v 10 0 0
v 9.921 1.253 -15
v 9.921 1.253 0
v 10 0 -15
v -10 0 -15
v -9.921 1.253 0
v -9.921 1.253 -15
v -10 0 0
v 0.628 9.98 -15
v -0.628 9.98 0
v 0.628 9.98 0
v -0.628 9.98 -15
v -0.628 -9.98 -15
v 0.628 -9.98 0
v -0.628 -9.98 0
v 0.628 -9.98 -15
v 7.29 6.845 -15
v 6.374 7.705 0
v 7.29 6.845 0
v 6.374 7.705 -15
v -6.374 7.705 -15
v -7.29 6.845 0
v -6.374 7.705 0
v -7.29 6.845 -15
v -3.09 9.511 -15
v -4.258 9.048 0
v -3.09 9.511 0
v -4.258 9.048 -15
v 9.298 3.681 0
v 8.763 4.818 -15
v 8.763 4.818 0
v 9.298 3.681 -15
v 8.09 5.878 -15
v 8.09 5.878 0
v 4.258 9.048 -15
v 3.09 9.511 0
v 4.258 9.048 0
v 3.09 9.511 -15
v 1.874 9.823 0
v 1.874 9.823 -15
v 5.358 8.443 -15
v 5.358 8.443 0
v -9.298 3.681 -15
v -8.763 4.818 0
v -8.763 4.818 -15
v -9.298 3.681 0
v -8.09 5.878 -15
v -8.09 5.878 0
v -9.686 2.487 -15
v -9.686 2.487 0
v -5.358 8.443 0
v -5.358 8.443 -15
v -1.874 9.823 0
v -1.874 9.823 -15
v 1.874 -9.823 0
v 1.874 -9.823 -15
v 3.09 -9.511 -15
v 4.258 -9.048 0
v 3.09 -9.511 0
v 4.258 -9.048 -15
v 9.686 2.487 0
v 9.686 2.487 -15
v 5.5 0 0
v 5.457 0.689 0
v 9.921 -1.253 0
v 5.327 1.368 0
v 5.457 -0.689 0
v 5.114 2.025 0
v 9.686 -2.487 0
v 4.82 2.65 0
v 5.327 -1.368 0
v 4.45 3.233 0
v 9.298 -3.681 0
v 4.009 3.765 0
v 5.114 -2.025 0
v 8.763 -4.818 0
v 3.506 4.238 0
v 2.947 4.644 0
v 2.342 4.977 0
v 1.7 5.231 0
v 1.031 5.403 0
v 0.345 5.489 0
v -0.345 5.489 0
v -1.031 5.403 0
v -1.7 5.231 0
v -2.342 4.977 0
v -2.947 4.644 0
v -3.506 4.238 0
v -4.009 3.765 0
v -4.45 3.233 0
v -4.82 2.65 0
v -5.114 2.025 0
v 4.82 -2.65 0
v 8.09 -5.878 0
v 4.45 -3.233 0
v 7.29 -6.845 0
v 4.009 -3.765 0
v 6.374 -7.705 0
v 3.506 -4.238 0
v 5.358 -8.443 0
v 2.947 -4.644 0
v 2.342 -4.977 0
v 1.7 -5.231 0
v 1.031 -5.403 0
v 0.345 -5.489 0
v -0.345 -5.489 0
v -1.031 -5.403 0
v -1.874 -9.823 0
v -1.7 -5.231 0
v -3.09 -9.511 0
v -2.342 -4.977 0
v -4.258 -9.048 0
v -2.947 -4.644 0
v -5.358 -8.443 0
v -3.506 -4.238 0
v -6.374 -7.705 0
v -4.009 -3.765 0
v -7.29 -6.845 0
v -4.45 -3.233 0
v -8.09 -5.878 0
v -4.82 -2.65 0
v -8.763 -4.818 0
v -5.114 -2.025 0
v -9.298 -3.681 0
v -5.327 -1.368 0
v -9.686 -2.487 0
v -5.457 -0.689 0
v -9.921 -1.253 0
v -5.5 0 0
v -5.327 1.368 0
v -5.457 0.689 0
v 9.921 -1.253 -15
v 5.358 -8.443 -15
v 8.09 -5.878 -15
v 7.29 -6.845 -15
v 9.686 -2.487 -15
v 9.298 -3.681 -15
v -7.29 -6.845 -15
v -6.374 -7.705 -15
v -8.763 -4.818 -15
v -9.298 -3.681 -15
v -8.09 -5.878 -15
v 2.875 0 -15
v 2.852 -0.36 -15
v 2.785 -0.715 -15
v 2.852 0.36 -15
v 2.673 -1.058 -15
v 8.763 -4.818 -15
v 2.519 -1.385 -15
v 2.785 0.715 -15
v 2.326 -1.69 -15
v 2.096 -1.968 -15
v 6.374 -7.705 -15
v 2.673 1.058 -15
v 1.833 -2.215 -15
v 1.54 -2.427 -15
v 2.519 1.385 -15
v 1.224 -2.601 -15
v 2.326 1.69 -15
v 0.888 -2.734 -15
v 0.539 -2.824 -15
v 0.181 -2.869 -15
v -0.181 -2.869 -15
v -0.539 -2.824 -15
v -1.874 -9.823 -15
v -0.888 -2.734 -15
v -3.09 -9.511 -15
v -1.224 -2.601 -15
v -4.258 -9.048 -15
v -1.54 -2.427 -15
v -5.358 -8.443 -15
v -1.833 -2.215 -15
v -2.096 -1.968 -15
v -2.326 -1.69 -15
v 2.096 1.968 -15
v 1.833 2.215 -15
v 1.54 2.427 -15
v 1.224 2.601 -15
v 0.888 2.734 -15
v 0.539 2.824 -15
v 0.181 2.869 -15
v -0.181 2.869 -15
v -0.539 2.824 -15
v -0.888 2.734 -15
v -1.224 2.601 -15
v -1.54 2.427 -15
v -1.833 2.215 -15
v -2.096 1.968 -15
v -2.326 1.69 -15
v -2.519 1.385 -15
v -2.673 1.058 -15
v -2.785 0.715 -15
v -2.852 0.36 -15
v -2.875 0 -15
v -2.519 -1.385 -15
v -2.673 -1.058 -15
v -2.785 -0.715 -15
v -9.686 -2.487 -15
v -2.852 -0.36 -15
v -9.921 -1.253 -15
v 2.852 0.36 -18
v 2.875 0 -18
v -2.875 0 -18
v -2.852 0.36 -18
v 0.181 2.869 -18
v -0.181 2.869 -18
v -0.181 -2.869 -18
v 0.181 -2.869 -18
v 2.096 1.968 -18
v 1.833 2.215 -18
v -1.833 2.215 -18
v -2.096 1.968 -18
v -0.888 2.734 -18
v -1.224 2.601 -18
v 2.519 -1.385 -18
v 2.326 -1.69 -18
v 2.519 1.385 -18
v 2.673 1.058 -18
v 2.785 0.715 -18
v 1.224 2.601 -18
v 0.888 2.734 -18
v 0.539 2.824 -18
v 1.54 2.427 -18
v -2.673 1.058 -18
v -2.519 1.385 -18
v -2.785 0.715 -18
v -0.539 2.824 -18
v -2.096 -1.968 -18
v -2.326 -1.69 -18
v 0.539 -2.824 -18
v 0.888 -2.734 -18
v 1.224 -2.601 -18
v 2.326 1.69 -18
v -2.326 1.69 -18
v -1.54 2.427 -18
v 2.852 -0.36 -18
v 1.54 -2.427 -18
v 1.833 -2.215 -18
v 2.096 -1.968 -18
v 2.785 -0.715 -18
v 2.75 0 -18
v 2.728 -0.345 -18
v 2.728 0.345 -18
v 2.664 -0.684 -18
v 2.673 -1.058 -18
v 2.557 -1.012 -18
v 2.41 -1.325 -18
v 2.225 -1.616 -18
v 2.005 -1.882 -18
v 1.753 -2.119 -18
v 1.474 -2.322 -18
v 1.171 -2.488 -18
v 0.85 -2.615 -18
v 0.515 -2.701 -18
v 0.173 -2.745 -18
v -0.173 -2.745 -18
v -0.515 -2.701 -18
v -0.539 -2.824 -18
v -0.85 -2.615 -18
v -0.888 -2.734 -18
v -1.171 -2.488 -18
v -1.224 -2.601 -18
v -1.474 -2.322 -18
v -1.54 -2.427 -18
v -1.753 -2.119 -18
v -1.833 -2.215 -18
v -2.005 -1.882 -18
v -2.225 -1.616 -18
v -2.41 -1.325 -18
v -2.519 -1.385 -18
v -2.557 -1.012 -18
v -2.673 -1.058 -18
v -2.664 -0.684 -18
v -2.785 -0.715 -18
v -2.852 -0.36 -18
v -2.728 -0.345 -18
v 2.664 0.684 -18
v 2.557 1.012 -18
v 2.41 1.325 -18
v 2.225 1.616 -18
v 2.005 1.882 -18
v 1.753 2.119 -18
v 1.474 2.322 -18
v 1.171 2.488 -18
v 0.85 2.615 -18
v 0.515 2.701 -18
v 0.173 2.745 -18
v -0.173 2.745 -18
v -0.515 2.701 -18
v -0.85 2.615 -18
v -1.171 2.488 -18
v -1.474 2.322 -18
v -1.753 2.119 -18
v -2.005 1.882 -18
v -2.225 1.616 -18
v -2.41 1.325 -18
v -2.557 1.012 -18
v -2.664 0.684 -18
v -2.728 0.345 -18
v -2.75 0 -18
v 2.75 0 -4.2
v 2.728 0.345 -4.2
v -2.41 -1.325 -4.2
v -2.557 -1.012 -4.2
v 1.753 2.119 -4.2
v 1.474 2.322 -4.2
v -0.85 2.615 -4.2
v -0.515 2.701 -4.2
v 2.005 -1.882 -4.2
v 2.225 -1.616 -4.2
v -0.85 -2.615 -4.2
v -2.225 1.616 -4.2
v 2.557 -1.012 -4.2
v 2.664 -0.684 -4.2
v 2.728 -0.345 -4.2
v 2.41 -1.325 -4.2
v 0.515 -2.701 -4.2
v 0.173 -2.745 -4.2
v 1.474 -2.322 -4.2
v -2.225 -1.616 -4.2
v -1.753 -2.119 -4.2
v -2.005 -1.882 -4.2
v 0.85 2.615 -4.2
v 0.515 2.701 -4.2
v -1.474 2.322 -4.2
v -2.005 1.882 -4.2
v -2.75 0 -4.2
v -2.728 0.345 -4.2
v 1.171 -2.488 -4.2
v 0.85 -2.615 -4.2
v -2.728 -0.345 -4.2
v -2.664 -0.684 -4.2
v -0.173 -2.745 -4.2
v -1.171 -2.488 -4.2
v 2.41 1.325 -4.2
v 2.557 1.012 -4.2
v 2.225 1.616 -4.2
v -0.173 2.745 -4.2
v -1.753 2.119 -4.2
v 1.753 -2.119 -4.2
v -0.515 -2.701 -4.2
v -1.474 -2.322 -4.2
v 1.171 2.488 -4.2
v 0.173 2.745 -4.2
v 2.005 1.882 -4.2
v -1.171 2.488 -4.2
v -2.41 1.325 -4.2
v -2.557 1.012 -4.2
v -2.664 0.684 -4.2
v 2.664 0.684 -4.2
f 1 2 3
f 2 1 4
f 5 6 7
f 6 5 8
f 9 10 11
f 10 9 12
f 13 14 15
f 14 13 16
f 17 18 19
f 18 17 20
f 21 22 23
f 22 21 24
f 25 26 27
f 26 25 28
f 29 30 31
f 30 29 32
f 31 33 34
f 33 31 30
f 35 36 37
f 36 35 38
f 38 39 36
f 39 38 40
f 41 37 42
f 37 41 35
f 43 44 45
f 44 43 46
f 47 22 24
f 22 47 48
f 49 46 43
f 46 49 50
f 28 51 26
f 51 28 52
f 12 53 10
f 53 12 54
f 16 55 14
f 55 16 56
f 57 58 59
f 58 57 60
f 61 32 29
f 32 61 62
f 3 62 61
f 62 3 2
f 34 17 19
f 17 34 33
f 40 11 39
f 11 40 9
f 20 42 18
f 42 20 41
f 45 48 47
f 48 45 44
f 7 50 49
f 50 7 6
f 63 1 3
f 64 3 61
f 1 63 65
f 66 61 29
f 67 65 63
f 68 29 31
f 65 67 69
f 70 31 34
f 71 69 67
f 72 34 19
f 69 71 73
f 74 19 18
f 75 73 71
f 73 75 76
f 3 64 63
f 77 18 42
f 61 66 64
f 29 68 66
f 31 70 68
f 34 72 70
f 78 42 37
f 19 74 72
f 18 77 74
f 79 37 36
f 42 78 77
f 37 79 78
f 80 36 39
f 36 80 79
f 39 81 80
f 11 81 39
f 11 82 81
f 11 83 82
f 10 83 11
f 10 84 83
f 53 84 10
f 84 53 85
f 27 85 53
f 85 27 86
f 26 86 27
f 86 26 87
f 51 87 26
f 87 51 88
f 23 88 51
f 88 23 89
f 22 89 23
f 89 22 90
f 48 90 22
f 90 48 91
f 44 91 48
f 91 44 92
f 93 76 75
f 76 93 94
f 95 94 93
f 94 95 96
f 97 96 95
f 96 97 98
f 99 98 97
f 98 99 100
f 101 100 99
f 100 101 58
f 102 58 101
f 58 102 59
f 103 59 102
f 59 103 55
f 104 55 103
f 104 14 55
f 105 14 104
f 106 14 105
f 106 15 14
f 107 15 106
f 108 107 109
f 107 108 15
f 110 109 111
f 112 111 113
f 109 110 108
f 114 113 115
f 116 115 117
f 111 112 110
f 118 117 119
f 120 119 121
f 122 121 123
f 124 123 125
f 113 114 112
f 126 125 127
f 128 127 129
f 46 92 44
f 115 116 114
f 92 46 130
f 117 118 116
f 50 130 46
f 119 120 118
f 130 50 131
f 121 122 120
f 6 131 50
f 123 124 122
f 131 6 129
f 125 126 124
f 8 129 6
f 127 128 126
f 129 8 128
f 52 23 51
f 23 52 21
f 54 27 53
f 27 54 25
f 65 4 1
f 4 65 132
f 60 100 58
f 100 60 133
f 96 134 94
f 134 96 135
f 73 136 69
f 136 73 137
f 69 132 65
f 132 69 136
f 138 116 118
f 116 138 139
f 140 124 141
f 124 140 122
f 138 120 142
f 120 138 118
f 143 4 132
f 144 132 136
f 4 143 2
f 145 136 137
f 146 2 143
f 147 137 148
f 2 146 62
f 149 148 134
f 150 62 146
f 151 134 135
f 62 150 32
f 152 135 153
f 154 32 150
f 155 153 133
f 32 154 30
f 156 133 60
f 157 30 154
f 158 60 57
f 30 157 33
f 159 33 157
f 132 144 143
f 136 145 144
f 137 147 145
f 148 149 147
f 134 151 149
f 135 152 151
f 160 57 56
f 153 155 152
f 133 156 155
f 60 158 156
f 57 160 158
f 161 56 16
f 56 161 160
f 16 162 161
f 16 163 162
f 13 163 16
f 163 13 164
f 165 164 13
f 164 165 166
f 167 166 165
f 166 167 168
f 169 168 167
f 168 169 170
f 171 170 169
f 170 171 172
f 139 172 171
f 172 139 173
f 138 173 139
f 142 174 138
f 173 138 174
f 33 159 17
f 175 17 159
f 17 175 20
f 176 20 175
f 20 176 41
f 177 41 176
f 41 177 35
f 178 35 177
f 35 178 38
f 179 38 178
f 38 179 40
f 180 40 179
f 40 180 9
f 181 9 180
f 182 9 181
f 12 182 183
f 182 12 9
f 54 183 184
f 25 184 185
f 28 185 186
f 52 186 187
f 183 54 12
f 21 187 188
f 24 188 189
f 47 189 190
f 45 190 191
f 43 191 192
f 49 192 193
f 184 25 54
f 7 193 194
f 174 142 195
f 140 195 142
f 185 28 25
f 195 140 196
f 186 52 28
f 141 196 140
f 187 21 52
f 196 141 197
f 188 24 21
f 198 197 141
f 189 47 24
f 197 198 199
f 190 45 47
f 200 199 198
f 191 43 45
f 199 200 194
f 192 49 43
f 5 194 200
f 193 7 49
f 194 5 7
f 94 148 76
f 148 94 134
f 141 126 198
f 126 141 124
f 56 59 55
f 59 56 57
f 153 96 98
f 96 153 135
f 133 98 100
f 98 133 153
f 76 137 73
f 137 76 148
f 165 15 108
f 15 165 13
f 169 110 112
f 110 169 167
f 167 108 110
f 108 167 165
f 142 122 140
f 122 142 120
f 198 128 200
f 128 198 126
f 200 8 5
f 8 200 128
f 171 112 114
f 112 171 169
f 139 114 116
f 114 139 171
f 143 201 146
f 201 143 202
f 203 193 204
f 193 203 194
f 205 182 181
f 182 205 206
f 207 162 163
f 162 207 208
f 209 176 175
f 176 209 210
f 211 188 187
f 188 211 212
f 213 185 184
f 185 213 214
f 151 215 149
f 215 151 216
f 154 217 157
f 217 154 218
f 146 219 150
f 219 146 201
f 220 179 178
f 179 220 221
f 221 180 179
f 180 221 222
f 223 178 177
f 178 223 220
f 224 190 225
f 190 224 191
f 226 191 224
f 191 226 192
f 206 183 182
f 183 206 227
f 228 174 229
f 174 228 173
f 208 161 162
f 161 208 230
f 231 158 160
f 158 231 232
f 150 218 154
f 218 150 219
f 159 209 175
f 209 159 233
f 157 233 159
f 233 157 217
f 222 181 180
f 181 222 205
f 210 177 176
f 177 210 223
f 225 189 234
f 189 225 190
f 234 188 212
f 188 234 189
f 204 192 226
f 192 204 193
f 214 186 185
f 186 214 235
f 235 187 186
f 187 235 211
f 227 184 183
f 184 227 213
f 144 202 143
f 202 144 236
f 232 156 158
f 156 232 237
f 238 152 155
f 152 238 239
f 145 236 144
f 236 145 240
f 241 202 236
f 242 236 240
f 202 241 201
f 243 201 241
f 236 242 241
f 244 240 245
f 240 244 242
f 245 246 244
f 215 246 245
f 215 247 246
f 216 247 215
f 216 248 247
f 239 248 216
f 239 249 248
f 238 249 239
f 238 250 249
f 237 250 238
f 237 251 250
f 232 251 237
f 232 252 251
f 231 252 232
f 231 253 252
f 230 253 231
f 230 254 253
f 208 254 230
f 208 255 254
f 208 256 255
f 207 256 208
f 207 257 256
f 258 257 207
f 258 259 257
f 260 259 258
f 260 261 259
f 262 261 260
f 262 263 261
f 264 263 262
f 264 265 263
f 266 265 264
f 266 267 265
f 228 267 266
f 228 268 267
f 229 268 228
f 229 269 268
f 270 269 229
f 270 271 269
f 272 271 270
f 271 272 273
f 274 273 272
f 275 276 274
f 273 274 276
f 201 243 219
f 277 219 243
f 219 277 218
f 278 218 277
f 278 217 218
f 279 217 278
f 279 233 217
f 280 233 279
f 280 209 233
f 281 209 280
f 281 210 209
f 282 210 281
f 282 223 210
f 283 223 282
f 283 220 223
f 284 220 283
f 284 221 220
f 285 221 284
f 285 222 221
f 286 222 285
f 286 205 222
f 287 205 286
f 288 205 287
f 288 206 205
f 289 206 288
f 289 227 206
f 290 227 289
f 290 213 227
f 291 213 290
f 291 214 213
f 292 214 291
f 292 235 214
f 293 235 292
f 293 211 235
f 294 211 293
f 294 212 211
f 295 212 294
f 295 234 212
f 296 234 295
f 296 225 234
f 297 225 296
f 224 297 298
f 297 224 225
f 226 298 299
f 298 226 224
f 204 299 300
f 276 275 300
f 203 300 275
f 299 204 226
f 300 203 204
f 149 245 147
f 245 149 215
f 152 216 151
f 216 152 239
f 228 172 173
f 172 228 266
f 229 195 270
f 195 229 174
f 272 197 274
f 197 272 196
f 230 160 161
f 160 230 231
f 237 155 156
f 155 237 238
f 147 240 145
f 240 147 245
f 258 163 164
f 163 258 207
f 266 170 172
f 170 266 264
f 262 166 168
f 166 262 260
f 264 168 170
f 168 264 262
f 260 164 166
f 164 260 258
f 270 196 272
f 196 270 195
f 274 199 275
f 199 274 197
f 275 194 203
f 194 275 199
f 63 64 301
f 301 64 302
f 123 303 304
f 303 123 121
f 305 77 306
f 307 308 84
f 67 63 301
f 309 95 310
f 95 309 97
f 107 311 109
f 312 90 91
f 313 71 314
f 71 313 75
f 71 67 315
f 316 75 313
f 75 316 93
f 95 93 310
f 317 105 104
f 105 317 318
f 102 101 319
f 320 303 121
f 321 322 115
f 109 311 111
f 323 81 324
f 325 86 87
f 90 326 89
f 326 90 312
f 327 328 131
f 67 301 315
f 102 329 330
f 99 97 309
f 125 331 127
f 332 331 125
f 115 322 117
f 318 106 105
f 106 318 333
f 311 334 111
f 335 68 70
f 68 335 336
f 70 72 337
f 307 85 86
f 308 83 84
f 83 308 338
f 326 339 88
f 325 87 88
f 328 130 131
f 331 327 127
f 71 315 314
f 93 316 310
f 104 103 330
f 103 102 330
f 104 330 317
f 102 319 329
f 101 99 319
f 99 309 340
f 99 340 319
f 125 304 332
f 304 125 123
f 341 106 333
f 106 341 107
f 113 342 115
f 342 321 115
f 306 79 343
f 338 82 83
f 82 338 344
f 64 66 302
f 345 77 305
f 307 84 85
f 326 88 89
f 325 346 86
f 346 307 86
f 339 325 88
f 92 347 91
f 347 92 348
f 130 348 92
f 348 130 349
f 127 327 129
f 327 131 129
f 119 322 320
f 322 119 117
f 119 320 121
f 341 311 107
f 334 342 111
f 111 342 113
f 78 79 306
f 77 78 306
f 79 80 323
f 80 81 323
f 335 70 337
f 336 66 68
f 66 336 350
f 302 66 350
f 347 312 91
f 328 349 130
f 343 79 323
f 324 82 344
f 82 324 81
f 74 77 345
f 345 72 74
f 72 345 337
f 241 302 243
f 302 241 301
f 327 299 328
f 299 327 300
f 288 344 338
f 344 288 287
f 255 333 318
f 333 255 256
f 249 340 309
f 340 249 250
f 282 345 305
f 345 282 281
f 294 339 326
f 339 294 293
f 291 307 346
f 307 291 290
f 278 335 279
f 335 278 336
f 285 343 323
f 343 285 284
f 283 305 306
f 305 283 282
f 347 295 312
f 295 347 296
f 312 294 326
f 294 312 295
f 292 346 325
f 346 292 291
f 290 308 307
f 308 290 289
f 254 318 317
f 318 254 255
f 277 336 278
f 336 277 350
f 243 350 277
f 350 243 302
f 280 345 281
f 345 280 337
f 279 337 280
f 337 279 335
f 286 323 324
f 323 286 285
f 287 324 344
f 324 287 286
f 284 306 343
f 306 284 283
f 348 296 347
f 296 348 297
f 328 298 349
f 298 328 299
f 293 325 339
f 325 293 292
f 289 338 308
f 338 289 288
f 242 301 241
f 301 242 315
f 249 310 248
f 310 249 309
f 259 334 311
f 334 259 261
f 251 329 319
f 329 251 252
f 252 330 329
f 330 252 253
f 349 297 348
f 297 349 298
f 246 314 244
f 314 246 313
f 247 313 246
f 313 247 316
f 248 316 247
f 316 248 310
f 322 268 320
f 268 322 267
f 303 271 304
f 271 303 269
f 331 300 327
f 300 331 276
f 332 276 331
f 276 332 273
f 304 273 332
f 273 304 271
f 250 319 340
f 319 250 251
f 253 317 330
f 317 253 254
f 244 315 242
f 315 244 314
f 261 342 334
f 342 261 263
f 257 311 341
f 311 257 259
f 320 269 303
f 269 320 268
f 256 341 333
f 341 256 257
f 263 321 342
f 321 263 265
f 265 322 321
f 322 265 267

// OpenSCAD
$fn = 50;


difference() {
	union() {
		translate(v = [0, 0, -15.0000000000]) {
			cylinder(h = 15, r = 10.0000000000);
		}
		#translate(v = [0, 0, -18.0000000000]) {
			cylinder(h = 18, r = 2.8750000000);
		}
	}
	union() {
		translate(v = [0, 0, 0]) {
			rotate(a = [0, 0, 0]) {
				difference() {
					union() {
						translate(v = [0, 0, -18.0000000000]) {
							cylinder(h = 18, r = 2.2500000000);
						}
						translate(v = [0, 0, -4.2000000000]) {
							cylinder(h = 4.2000000000, r1 = 2.7500000000, r2 = 5.5000000000);
						}
						translate(v = [0, 0, -18.0000000000]) {
							cylinder(h = 18, r = 2.7500000000);
						}
						translate(v = [0, 0, -18.0000000000]) {
							cylinder(h = 18, r = 2.2500000000);
						}
					}
					union();
				}
			}
		}
	}
}
